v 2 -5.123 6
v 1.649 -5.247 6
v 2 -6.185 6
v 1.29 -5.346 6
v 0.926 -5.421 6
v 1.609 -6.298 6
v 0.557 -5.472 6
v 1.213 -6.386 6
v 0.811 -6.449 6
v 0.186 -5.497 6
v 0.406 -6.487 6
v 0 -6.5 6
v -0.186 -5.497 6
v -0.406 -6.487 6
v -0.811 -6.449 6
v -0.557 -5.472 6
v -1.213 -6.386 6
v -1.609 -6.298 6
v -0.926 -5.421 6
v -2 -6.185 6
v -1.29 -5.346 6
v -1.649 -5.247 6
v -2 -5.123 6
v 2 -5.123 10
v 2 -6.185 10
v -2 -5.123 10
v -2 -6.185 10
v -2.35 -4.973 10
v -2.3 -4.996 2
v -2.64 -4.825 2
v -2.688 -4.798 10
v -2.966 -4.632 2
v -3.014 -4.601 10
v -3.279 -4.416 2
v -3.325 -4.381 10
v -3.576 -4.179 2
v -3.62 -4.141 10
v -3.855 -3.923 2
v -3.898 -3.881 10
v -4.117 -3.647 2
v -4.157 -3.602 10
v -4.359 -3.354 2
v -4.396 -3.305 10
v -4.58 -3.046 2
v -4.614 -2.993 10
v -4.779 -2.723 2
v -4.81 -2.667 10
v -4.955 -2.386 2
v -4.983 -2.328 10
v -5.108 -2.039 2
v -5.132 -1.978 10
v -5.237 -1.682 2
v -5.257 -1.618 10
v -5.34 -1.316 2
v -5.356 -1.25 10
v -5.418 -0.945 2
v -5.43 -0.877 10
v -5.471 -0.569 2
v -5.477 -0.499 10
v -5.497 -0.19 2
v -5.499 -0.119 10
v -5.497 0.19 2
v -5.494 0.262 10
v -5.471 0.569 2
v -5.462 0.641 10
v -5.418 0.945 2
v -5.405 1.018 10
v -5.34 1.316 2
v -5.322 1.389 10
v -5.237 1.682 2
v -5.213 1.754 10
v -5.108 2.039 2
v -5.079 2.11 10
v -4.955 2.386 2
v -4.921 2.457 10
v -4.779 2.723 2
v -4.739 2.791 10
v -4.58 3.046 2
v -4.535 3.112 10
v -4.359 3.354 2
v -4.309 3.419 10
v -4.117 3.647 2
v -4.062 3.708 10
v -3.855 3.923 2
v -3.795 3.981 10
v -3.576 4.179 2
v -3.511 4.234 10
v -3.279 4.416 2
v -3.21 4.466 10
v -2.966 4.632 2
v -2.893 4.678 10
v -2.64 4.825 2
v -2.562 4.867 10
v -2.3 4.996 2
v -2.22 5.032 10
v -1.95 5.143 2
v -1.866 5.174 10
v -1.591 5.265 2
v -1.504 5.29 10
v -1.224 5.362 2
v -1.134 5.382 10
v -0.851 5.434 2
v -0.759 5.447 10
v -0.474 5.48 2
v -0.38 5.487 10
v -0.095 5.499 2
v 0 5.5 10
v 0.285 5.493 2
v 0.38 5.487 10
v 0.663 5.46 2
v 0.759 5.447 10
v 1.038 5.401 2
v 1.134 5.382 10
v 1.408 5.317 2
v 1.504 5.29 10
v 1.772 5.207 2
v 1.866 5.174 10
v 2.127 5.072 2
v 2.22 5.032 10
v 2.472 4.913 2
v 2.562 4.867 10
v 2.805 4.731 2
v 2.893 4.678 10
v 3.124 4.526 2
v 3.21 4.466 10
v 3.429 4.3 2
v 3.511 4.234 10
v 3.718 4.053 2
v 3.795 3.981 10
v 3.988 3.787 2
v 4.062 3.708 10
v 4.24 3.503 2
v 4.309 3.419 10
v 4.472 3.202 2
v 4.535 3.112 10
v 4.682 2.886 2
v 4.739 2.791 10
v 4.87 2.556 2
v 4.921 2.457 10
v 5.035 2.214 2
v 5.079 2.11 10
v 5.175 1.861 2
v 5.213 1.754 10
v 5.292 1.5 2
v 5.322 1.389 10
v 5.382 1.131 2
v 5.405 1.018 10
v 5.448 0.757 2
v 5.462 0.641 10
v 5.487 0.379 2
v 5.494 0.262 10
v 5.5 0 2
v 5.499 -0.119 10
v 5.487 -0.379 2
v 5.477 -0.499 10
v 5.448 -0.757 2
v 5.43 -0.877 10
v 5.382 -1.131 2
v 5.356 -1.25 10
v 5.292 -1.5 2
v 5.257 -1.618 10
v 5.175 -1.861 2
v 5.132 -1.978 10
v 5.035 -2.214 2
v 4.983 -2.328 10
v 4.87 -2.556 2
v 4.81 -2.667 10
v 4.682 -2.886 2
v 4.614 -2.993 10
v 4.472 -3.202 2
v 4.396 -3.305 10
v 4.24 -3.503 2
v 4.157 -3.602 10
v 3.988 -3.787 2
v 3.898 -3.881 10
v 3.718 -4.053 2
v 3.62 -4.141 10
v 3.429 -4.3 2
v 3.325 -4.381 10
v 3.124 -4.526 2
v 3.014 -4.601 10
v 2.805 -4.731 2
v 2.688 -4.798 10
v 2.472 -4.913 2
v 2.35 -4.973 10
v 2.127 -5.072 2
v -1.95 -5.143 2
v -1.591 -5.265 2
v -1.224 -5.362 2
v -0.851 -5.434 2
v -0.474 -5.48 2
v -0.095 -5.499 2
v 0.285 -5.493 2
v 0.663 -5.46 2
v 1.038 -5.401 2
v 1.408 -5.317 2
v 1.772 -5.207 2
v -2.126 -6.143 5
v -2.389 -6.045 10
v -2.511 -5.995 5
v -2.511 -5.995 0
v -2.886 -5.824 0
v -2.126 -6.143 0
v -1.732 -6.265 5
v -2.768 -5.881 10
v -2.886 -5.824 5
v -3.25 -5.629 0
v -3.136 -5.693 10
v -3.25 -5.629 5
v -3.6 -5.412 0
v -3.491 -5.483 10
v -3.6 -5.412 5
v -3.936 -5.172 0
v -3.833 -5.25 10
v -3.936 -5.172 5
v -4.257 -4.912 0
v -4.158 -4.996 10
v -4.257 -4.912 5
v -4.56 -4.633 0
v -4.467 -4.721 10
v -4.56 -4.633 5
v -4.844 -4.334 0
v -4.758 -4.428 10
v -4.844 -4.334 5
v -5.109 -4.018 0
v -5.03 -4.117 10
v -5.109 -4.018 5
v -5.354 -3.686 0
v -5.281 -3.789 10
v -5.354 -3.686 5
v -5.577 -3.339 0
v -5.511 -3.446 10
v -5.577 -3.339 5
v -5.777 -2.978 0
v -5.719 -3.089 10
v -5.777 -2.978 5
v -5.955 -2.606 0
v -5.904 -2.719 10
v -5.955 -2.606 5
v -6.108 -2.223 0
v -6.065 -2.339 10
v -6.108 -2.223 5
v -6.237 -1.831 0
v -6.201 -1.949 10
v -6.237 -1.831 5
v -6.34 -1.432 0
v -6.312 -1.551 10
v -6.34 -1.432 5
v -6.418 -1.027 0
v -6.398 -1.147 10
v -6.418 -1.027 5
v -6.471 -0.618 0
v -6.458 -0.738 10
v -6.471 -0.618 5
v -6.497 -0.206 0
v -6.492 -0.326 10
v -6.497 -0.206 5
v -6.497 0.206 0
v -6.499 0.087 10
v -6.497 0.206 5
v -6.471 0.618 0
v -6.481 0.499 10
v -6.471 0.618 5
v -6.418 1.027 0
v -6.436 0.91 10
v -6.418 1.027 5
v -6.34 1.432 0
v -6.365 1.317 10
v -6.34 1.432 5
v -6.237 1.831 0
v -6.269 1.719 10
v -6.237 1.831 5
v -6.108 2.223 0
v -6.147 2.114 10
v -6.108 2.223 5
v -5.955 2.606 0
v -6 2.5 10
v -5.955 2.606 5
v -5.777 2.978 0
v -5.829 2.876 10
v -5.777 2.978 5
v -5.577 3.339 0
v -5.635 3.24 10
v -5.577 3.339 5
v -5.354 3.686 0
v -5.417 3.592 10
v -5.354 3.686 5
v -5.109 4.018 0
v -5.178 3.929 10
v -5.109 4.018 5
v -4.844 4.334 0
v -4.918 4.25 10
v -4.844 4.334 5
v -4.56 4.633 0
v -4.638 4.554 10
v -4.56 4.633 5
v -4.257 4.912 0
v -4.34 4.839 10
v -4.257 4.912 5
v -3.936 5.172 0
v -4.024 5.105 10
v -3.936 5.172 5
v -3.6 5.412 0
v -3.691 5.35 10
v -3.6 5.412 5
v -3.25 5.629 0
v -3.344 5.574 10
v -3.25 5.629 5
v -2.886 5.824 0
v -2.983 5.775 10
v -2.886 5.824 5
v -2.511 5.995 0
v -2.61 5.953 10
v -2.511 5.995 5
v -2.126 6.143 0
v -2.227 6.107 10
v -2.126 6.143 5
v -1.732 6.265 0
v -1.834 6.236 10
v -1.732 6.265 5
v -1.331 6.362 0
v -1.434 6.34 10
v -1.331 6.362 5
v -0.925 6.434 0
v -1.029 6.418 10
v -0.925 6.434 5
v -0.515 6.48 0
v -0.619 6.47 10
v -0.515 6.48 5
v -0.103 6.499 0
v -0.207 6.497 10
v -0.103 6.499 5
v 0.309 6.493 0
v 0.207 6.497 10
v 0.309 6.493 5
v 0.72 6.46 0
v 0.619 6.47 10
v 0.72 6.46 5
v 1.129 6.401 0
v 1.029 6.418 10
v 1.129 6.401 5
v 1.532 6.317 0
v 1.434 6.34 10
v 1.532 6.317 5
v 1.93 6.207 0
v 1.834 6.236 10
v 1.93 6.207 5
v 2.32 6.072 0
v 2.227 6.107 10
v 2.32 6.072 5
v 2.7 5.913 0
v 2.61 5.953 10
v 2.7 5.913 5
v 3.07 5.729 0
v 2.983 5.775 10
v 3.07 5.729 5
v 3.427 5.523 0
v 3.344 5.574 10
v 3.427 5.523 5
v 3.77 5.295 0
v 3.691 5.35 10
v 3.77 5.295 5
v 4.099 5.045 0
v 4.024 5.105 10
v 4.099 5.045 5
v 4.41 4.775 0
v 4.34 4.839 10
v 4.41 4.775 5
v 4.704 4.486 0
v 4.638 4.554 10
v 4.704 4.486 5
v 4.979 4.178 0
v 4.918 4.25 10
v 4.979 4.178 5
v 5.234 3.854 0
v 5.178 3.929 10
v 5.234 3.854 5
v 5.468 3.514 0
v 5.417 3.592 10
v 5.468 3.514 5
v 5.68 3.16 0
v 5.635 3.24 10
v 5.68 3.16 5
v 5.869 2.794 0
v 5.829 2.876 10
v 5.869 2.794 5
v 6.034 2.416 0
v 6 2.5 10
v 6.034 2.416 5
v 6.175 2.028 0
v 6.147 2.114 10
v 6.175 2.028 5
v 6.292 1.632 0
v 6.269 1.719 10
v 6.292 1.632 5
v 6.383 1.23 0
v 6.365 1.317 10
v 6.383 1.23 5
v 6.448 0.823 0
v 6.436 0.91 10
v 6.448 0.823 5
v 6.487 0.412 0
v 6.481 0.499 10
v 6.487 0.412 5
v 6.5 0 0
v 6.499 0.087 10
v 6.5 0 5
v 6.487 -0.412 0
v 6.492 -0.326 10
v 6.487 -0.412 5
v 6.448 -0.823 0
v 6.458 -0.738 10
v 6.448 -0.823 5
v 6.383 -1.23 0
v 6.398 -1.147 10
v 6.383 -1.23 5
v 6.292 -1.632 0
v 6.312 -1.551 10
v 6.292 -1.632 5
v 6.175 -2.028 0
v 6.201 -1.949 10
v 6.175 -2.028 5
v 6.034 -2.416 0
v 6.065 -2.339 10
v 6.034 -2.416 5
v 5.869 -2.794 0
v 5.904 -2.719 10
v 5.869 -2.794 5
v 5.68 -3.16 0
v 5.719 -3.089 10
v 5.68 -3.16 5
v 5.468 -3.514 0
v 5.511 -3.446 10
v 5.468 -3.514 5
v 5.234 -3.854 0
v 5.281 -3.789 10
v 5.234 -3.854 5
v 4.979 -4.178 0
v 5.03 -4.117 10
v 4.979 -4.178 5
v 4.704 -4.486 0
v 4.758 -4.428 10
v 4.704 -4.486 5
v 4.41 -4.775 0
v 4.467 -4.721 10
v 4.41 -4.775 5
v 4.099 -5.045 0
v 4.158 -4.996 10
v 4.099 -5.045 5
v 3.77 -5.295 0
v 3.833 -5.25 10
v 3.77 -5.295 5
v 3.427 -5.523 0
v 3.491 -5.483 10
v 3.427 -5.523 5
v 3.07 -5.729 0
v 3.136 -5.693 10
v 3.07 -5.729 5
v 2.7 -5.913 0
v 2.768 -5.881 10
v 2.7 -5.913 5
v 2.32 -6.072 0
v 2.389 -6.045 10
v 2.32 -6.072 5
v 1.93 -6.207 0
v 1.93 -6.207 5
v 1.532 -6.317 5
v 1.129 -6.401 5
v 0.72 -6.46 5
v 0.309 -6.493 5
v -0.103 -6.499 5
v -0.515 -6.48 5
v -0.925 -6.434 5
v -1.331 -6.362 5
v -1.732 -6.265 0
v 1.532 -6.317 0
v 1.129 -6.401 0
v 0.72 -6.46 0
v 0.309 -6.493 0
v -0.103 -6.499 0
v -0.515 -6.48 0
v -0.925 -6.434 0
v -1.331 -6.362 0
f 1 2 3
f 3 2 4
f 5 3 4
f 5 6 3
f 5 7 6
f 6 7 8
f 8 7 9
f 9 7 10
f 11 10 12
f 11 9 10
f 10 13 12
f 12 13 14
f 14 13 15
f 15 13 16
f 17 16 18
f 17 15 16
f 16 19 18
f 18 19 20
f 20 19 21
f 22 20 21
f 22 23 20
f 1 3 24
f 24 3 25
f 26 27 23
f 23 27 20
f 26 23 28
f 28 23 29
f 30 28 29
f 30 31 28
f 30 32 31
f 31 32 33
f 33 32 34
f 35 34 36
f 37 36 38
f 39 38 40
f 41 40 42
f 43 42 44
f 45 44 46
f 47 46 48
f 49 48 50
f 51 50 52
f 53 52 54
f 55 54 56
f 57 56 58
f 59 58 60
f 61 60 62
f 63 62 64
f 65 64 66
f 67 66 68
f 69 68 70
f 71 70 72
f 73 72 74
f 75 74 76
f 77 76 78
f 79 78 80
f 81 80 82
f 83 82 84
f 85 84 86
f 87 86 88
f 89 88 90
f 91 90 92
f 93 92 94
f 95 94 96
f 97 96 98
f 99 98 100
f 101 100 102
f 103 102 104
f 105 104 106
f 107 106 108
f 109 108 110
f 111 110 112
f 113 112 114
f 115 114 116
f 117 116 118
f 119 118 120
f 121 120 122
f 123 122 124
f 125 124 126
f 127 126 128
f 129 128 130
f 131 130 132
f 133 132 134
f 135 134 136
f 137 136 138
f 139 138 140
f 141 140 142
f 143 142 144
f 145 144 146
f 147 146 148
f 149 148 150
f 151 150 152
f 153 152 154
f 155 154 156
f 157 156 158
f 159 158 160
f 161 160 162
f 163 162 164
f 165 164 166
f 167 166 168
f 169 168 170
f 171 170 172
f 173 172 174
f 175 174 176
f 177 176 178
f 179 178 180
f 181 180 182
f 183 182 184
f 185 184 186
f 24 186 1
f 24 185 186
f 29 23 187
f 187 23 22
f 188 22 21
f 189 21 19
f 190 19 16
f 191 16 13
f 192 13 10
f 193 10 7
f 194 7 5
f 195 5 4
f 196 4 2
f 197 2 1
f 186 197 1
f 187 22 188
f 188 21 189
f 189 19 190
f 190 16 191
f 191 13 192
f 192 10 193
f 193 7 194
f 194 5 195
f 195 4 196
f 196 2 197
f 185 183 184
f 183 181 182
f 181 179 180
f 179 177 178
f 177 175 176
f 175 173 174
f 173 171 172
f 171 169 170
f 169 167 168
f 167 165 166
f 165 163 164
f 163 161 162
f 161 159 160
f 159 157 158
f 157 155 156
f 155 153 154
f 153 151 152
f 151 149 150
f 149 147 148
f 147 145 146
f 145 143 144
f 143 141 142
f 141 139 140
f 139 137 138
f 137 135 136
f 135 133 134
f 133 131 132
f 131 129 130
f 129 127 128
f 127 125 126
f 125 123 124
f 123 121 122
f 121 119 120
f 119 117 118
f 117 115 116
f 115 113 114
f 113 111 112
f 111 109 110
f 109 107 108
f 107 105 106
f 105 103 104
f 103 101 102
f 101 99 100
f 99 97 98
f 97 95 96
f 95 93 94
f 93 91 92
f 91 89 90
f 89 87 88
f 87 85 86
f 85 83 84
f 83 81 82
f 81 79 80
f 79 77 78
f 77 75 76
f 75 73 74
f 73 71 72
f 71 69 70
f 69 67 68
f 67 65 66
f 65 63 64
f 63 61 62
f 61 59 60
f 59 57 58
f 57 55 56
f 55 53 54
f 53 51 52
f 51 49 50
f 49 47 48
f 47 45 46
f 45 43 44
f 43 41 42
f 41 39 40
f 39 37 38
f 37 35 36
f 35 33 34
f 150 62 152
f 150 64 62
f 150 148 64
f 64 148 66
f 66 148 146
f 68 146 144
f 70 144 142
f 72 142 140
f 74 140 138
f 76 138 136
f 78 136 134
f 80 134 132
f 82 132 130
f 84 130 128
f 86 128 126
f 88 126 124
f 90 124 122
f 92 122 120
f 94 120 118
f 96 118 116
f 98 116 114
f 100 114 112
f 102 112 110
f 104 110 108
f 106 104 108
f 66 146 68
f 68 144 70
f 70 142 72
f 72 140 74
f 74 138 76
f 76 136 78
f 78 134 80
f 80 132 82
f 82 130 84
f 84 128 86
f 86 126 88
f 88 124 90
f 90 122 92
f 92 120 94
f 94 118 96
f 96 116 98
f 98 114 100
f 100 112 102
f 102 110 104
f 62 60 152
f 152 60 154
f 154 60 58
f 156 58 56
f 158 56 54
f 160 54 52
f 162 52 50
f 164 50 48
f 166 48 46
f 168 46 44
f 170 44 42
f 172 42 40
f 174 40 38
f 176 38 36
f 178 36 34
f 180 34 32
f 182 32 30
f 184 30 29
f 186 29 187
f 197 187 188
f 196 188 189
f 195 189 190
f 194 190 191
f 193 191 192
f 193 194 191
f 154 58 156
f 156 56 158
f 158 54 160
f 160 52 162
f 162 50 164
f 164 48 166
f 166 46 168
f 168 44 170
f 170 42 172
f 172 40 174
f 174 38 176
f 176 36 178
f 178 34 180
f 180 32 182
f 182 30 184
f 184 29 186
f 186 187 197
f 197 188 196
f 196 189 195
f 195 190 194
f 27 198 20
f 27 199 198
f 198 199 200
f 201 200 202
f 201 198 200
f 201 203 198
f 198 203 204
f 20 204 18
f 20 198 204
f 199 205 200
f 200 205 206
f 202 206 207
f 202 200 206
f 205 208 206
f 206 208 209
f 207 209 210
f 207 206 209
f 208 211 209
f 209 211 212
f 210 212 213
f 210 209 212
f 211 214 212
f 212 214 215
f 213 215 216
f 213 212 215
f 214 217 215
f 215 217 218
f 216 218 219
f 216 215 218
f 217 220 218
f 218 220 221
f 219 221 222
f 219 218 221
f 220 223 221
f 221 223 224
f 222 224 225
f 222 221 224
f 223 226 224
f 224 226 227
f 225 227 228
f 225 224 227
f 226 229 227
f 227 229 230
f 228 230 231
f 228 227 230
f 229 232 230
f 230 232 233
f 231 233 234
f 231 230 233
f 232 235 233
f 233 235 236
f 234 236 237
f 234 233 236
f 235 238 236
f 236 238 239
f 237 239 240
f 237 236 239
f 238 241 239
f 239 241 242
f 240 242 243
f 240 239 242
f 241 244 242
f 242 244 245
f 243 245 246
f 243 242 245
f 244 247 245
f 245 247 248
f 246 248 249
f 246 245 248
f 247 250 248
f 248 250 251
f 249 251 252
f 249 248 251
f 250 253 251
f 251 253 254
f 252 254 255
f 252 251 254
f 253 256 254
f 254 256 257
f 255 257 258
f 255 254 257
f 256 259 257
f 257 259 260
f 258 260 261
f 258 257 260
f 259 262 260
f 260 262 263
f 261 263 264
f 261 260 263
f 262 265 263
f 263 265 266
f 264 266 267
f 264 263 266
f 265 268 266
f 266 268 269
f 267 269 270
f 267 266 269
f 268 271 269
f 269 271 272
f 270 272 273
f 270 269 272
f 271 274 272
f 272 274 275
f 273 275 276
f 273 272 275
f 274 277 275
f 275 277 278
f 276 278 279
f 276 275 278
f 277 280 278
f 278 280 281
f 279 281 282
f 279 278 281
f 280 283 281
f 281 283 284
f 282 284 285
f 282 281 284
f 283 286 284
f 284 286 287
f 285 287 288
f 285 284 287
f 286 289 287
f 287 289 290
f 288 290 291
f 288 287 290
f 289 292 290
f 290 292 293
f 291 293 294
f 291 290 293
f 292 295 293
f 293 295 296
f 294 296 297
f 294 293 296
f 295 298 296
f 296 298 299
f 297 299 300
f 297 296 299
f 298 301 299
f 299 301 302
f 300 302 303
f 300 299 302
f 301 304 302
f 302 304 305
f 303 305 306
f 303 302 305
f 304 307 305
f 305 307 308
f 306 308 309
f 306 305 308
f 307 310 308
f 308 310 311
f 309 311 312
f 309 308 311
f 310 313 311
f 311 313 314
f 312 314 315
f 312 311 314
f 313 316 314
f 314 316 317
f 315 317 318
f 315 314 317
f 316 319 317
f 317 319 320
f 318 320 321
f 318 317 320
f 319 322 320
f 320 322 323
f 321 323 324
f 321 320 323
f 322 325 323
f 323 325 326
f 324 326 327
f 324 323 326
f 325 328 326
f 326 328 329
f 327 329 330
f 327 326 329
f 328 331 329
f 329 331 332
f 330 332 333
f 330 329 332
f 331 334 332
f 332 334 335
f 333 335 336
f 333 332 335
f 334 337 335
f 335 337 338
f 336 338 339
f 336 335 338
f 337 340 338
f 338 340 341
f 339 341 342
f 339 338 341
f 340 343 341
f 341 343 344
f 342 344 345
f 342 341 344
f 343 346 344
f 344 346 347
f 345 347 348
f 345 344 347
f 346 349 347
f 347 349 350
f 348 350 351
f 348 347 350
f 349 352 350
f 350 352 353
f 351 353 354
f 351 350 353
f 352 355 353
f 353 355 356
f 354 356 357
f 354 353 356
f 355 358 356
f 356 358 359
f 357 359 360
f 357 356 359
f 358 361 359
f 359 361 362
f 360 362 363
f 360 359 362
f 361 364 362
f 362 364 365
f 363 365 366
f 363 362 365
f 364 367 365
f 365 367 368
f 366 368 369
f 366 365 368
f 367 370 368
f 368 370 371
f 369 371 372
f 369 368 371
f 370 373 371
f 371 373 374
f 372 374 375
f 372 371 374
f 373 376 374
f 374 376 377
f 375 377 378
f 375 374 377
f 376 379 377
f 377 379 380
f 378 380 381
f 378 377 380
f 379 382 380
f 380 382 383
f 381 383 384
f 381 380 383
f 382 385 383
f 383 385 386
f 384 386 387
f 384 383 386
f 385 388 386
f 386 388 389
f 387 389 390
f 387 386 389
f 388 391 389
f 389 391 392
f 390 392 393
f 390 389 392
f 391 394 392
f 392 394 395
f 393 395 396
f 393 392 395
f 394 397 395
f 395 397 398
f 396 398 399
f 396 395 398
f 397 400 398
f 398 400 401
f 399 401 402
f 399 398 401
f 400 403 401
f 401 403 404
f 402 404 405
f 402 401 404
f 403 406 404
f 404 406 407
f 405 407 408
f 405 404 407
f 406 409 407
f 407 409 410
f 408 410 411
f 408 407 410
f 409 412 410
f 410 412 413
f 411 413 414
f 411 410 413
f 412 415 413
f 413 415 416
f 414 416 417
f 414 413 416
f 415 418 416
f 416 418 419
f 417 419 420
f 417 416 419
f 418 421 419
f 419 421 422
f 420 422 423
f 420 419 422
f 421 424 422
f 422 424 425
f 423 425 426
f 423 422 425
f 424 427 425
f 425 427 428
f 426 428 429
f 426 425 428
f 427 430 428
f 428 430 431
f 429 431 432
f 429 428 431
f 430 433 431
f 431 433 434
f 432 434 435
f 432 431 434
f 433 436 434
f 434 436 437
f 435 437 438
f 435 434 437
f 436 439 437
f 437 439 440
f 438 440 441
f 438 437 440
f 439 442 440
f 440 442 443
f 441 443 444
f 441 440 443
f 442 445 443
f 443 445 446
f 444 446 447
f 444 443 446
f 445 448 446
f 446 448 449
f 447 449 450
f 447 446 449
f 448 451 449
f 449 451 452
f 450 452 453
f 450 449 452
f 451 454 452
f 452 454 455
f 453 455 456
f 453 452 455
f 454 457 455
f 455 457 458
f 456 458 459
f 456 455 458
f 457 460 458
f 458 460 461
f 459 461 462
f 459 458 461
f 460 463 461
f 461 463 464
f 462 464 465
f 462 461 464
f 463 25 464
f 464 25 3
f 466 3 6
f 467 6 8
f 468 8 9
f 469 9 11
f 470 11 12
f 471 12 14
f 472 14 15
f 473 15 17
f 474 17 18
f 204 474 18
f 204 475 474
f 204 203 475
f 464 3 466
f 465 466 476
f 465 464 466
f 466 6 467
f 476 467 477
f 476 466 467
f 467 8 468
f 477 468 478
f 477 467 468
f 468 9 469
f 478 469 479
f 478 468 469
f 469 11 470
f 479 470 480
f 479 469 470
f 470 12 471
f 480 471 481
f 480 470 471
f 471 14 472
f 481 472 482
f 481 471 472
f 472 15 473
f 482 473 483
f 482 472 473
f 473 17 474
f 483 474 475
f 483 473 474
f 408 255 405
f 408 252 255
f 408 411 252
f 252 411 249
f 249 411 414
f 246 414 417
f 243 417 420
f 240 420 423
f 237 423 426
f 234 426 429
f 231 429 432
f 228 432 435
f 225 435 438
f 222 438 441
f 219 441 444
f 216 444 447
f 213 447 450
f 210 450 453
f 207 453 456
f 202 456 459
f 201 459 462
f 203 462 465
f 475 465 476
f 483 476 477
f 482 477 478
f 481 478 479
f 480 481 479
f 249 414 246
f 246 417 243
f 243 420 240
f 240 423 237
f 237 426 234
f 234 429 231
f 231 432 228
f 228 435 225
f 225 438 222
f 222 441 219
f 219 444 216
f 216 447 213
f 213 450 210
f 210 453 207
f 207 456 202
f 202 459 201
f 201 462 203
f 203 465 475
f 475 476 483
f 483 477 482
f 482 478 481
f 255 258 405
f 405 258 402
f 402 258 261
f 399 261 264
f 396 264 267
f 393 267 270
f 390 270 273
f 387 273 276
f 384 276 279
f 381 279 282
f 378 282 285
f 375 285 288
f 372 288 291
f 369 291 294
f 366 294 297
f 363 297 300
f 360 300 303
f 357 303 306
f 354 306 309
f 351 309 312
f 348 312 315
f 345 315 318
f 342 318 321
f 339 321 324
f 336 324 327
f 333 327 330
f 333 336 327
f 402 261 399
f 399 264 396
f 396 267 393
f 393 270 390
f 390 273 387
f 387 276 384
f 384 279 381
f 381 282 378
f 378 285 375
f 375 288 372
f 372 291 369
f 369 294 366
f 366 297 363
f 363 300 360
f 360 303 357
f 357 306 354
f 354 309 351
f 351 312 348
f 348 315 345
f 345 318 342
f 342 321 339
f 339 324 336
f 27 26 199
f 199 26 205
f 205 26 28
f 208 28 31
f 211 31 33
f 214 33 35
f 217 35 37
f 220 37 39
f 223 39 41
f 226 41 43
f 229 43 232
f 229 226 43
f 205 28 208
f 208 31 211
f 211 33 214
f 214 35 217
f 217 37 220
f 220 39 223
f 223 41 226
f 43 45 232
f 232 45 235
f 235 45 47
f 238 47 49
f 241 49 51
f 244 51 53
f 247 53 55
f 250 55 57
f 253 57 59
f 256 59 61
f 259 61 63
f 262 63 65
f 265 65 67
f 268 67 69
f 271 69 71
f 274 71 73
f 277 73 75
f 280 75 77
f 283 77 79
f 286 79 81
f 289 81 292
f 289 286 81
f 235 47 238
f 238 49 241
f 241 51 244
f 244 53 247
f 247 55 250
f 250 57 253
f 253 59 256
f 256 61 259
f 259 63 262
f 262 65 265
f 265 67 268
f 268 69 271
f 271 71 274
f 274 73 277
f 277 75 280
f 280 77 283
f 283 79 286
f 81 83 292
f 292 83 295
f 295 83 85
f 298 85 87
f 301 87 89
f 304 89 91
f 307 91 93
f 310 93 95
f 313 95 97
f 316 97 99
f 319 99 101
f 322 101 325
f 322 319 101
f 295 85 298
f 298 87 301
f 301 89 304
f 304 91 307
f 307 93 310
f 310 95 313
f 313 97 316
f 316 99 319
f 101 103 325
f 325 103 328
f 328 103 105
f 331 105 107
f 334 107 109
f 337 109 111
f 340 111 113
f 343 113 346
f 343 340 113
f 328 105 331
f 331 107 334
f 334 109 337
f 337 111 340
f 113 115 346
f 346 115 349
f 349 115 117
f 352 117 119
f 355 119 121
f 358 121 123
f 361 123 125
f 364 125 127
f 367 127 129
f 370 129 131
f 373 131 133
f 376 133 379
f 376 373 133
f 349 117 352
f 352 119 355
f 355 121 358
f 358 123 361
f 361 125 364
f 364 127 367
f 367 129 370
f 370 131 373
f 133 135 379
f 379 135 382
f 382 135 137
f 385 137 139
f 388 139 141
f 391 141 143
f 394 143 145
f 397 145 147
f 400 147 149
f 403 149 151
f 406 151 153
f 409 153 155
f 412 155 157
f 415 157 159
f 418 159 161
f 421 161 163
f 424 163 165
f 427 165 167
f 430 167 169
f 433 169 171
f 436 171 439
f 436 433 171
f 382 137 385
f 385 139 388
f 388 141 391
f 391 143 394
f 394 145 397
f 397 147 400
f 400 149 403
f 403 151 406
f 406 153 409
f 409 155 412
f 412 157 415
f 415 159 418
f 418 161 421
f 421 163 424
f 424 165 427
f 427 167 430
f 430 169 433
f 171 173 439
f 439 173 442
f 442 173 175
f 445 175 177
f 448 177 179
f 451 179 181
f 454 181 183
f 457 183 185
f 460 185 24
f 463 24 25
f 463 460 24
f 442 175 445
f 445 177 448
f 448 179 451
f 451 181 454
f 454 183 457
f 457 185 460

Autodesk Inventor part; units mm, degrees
ref_plane "YZ Plane" through (0, 0, 0) normal (1, 0, 0) x (0, 1, 0)
ref_plane "XZ Plane" through (0, 0, 0) normal (0, 1, 0) x (-1, 0, 0)
ref_plane "XY Plane" through (0, 0, 0) normal (0, 0, 1) x (1, 0, 0)
sketch "Sketch1" plane through (0, 0, 0) normal (0, 0, 1) x (1, 0, 0)
  circle A0 centre (0, 0) radius 6.5
  dimension "d0" = 13
extrude "Extrusion1" add sketch "Sketch1" along normal blind 10
sketch "Sketch2" plane through (0, 0, 10) normal (0, 0, 1) x (1, 0, 0)
  circle A0 centre (0, 0) radius 5.5
  dimension "d3" = 11
extrude "Extrusion2" cut sketch "Sketch2" against normal blind 8
sketch "Sketch3" plane through (0, 0, 10) normal (0, 0, 1) x (1, 0, 0)
  circle A0 centre (0, 0) radius 5.5 projected
  circle A1 centre (0, 0) radius 6.5 projected
  line L0 (-2, 0) -> (2, 0)
  line L1 (2, 0) -> (2, -6.9117)
  line L2 (2, -6.9117) -> (-2, -6.9117)
  line L3 (-2, -6.9117) -> (-2, 0)
  dimension "d6" = 4
extrude "Extrusion3" cut sketch "Sketch3" against normal blind 4 contours L3 L0 L1 A0 | A0 L1 A1 L3 | A1 L1 L2 L3 picked at (0.2269, -1.8192) picked at (-1.5602, -5.5886)
properties part number "capuchon.torre"
